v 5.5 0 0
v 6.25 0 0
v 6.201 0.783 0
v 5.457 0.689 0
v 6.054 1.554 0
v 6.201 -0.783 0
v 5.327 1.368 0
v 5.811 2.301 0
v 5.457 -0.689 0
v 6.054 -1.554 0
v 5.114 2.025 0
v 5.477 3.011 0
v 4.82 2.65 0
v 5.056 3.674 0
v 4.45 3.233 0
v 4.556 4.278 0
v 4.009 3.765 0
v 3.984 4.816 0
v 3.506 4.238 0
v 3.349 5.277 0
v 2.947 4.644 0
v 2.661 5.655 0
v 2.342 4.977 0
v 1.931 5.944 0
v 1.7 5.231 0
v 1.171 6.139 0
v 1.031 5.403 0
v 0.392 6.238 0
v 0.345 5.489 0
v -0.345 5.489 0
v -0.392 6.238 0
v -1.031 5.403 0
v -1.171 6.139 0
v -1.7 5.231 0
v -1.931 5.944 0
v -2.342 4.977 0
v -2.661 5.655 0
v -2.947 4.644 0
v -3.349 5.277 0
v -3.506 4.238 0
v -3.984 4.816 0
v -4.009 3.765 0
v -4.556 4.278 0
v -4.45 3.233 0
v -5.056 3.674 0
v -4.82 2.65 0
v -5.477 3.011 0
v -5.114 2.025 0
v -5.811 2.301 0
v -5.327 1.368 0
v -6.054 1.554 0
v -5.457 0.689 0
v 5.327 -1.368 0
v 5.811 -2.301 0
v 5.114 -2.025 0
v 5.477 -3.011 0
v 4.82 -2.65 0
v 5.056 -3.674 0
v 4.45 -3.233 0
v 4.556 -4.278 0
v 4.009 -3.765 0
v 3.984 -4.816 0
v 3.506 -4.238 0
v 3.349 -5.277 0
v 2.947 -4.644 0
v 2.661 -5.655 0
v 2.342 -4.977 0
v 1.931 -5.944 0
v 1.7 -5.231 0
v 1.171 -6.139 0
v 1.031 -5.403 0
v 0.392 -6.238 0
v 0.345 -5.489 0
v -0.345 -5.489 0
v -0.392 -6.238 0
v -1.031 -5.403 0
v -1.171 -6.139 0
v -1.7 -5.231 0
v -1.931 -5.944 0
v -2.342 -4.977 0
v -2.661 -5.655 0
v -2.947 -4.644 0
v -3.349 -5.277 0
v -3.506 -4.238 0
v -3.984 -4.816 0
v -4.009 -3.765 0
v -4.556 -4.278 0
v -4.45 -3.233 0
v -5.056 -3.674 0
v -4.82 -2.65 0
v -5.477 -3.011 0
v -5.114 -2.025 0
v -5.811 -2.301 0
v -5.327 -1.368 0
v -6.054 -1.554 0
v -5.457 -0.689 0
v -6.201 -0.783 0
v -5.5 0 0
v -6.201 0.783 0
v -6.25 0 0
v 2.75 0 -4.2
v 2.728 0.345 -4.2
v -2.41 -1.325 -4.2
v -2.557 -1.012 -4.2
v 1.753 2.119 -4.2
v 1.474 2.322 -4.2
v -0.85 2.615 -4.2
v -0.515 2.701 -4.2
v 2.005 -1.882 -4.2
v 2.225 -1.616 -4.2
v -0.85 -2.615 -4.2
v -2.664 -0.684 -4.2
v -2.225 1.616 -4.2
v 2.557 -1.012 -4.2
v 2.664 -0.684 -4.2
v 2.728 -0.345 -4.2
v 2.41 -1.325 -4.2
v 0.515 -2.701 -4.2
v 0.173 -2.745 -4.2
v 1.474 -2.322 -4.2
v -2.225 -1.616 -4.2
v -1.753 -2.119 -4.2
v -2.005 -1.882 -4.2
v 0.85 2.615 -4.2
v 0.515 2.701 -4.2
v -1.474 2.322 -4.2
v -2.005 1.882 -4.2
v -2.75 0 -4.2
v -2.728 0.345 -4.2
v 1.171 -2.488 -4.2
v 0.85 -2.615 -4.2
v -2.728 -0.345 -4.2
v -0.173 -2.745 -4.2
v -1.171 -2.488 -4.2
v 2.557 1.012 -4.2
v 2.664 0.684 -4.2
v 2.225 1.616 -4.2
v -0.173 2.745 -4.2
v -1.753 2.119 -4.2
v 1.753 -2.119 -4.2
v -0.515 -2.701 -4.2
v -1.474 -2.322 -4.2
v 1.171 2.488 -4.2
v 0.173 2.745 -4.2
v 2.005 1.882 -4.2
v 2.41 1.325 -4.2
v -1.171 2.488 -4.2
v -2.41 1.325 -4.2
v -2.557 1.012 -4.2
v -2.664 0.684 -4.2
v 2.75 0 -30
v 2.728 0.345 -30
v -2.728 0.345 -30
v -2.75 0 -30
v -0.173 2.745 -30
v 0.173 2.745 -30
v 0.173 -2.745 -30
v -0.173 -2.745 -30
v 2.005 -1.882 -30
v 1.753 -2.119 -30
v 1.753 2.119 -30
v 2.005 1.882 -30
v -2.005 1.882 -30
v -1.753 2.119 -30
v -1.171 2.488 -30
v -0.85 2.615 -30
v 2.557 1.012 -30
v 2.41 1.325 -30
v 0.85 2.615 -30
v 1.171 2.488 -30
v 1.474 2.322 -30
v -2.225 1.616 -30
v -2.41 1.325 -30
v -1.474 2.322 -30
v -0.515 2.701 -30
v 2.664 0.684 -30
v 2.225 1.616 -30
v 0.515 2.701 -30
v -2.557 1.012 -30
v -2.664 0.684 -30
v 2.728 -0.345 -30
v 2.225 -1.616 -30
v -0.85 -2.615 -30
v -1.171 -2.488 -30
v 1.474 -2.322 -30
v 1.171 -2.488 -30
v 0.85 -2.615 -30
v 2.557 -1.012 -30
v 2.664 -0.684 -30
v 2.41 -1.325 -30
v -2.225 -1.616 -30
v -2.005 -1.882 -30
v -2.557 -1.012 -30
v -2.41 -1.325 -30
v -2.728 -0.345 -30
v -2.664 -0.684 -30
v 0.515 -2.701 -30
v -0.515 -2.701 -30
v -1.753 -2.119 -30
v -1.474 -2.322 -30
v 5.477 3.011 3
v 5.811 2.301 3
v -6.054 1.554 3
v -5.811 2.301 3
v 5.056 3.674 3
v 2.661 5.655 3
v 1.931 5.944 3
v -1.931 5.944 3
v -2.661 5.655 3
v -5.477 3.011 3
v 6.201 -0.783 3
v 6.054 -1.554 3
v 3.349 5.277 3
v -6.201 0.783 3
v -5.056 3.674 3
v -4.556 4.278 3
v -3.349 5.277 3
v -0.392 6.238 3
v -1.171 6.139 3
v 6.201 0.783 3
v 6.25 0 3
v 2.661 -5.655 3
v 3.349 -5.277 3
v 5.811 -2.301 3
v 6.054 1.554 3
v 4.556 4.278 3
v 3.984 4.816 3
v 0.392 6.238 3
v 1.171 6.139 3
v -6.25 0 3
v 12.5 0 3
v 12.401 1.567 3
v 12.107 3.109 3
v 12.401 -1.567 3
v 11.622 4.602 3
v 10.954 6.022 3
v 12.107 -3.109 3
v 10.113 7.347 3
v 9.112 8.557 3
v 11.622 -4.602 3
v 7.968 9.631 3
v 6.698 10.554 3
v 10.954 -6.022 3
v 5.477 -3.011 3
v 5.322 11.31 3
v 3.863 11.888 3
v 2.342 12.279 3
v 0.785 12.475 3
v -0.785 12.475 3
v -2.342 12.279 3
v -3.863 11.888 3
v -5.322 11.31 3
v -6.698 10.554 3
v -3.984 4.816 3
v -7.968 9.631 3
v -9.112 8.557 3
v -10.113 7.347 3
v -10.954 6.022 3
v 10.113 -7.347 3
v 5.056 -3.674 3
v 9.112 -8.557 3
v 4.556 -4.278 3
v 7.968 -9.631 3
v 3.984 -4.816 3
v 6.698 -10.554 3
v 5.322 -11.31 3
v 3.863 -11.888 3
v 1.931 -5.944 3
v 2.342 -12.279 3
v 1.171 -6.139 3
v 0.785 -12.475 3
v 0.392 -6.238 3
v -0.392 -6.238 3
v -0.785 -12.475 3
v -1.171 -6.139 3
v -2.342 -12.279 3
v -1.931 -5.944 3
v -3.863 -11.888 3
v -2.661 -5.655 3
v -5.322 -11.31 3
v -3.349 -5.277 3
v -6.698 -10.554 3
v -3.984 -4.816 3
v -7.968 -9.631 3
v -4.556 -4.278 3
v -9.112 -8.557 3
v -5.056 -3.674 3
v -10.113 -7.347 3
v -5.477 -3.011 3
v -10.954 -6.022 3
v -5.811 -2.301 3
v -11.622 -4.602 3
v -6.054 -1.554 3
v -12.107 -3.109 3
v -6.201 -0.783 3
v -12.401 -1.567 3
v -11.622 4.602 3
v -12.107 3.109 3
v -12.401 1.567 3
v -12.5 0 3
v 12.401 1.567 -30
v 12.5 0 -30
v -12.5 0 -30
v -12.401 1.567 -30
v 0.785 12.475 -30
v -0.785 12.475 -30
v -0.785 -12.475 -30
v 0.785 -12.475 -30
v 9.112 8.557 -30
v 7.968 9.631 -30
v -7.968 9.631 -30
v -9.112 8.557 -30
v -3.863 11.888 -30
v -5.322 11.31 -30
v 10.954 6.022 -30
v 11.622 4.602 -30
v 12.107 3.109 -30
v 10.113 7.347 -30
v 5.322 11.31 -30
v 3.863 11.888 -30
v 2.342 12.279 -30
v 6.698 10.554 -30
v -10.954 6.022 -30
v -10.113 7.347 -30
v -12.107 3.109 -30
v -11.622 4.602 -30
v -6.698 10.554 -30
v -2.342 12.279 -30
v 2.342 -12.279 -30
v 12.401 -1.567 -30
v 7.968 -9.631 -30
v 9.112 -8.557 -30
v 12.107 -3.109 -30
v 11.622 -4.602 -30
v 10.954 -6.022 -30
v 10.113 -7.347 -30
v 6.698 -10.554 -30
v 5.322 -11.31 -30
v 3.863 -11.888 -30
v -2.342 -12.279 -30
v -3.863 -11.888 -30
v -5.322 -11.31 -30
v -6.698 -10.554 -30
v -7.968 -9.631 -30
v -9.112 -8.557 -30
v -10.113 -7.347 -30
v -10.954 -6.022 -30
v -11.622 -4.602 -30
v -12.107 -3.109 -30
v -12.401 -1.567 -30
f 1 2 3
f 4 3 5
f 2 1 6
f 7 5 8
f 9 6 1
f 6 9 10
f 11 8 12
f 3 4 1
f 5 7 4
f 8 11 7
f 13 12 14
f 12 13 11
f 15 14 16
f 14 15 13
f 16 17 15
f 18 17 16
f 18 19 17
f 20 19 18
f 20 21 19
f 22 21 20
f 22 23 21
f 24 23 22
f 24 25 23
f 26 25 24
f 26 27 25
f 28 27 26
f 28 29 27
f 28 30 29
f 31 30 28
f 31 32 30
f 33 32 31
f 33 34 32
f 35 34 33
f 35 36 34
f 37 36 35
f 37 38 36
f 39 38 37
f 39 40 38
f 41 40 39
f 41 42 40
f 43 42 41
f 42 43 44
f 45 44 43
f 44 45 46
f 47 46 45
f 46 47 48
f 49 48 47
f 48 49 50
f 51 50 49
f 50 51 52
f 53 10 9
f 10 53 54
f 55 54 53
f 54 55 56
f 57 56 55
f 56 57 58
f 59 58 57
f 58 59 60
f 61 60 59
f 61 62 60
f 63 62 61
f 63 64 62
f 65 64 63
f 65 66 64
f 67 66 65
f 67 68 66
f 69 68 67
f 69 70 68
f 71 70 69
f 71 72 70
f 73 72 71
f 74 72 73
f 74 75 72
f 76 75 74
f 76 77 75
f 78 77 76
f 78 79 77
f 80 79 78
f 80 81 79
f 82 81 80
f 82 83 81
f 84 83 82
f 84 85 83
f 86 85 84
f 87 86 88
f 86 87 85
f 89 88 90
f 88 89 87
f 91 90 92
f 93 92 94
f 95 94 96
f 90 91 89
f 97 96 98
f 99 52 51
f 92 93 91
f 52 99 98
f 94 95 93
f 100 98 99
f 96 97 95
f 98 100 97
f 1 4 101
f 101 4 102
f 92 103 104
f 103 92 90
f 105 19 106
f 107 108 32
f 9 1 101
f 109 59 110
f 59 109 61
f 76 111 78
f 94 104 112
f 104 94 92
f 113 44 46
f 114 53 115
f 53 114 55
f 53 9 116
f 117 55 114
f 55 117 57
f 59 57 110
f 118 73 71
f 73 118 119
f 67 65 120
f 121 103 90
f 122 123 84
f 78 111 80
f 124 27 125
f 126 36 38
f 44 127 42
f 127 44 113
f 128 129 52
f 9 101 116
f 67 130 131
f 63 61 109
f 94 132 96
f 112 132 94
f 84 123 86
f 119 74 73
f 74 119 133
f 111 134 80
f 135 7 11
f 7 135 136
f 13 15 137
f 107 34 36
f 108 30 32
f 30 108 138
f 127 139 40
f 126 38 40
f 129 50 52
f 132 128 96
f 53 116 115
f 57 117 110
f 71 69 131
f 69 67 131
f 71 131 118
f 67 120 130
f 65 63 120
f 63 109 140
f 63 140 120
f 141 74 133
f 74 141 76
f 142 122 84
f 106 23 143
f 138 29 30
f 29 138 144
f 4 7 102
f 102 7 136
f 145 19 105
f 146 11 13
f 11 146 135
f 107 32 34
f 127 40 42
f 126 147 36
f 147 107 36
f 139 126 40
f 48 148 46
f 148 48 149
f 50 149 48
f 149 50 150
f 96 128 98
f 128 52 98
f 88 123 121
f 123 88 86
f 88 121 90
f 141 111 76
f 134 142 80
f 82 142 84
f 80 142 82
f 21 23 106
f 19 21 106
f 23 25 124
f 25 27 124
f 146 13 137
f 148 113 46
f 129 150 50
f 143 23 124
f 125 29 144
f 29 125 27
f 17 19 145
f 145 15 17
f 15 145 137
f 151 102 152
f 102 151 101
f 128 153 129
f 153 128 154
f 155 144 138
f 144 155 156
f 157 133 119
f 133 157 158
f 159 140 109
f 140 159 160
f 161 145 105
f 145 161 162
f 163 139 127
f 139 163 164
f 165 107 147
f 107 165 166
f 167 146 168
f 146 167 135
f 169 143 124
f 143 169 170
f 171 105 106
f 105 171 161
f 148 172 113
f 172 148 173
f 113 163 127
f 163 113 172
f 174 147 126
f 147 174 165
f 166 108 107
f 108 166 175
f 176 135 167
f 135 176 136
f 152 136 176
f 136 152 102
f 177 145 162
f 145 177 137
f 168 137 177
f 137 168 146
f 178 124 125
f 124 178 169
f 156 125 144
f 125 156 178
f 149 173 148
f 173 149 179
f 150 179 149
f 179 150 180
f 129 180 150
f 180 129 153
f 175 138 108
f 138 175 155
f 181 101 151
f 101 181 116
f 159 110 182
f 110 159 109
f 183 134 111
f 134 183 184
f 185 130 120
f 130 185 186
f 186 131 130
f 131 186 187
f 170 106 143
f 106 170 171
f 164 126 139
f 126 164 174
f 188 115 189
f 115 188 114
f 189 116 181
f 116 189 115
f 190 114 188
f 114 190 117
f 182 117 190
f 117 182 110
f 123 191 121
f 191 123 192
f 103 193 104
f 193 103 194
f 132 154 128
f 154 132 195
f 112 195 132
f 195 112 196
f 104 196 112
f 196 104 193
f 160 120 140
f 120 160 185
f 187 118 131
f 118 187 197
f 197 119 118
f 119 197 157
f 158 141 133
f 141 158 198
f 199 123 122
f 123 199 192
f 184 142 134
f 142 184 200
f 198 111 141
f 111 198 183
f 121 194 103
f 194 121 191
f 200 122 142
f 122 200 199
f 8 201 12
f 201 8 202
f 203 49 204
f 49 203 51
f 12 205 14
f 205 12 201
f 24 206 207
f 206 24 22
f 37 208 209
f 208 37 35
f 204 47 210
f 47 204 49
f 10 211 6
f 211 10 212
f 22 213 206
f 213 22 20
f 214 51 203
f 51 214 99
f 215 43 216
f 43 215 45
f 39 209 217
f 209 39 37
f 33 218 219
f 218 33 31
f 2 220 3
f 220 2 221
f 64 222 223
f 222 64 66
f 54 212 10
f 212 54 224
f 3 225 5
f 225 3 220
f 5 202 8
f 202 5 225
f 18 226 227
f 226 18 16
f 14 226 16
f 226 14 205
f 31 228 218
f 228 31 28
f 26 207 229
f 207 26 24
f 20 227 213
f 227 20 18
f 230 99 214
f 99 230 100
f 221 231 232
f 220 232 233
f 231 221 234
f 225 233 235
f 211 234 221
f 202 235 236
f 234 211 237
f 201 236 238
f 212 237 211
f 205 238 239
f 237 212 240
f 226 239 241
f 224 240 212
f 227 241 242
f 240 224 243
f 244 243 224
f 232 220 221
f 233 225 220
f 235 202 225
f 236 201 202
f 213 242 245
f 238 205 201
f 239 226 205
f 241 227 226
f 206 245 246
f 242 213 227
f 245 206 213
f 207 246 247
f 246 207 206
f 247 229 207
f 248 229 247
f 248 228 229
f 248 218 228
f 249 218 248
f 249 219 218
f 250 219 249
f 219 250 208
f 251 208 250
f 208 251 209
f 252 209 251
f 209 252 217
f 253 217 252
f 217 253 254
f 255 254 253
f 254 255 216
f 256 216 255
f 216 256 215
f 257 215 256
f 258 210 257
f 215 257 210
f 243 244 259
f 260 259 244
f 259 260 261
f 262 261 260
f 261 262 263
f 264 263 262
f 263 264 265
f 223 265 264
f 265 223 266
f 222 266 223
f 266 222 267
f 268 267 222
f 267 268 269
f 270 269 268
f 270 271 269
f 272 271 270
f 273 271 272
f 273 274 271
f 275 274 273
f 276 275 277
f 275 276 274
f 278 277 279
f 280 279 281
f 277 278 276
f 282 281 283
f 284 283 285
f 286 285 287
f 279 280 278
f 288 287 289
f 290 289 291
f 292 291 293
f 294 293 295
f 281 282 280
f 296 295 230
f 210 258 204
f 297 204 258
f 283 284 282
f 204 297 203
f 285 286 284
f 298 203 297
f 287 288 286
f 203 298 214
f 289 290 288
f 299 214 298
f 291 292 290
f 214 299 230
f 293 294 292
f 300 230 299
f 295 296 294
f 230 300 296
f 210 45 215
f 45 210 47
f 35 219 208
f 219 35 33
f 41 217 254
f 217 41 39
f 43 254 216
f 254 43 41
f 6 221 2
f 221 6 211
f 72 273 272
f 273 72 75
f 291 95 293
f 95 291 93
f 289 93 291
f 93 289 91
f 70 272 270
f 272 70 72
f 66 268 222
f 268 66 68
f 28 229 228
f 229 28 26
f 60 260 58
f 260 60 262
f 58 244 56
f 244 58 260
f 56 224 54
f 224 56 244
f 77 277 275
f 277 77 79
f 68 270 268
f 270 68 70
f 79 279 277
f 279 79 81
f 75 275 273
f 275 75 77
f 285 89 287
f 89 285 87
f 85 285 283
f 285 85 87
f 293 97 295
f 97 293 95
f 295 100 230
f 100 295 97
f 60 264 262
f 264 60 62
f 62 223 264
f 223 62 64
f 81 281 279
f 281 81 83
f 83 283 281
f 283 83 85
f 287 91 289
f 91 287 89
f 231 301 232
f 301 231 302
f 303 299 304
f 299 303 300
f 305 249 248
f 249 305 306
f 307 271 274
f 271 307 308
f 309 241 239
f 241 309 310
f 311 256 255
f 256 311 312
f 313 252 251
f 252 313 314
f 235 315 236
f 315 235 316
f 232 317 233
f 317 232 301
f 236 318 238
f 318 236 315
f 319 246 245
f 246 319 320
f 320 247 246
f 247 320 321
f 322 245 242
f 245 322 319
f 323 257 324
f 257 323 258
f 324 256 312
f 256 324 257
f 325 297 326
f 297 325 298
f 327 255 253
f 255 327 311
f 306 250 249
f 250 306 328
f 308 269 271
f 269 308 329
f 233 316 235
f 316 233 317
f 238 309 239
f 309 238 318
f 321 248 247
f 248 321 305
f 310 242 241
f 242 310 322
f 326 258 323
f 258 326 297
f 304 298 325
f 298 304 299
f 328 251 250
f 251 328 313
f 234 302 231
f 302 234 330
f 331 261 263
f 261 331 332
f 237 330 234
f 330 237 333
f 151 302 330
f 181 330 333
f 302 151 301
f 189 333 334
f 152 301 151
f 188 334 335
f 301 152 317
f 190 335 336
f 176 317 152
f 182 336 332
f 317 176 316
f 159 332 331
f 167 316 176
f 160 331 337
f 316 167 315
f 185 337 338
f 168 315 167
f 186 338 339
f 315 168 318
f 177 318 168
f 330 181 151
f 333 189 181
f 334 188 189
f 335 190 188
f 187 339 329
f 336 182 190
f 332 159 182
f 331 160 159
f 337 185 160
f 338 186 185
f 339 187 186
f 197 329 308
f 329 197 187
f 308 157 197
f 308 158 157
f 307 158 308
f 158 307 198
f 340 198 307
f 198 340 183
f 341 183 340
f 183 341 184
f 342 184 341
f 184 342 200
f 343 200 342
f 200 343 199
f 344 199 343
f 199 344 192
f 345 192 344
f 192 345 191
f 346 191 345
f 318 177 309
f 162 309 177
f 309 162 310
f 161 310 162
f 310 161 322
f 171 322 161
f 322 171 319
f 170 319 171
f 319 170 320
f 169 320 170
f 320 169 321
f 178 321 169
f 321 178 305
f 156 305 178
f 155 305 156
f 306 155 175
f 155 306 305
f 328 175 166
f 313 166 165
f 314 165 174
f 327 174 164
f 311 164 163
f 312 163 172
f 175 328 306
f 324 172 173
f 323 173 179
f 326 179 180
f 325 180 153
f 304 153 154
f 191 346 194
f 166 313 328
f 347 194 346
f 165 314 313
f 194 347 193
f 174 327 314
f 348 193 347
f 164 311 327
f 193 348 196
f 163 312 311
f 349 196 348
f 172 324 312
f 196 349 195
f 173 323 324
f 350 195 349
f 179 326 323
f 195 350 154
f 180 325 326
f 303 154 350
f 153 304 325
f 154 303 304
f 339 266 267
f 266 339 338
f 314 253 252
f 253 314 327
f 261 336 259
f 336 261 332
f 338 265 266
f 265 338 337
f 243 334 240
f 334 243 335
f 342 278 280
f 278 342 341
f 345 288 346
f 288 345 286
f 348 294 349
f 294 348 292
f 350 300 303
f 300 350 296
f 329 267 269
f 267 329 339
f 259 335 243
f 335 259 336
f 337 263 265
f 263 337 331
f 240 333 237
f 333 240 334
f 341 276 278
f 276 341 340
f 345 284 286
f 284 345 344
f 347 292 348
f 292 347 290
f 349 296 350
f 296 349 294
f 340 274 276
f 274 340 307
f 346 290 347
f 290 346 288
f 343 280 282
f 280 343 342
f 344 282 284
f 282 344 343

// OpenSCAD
$fn = 50;

difference() {
	union() {
		translate(v = [0, 0, -30.0]) {
			cylinder(h = 33, r = 12.5);
		}
	}
	union() {
		translate(v = [0, 0, 0]) {
			rotate(a = [0, 0, 0]) {
				difference() {
					union() {
						translate(v = [0, 0, -33.0]) {
							cylinder(h = 33, r = 2.25);
						}
						translate(v = [0, 0, -4.2]) {
							cylinder(h = 4.2, r1 = 2.75, r2 = 5.5);
						}
						translate(v = [0, 0, -33.0]) {
							cylinder(h = 33, r = 2.75);
						}
						translate(v = [0, 0, -33.0]) {
							cylinder(h = 33, r = 2.25);
						}
					}
					union();
				}
			}
		}
		#cylinder(h = 3, r = 6.25);
	}
}
